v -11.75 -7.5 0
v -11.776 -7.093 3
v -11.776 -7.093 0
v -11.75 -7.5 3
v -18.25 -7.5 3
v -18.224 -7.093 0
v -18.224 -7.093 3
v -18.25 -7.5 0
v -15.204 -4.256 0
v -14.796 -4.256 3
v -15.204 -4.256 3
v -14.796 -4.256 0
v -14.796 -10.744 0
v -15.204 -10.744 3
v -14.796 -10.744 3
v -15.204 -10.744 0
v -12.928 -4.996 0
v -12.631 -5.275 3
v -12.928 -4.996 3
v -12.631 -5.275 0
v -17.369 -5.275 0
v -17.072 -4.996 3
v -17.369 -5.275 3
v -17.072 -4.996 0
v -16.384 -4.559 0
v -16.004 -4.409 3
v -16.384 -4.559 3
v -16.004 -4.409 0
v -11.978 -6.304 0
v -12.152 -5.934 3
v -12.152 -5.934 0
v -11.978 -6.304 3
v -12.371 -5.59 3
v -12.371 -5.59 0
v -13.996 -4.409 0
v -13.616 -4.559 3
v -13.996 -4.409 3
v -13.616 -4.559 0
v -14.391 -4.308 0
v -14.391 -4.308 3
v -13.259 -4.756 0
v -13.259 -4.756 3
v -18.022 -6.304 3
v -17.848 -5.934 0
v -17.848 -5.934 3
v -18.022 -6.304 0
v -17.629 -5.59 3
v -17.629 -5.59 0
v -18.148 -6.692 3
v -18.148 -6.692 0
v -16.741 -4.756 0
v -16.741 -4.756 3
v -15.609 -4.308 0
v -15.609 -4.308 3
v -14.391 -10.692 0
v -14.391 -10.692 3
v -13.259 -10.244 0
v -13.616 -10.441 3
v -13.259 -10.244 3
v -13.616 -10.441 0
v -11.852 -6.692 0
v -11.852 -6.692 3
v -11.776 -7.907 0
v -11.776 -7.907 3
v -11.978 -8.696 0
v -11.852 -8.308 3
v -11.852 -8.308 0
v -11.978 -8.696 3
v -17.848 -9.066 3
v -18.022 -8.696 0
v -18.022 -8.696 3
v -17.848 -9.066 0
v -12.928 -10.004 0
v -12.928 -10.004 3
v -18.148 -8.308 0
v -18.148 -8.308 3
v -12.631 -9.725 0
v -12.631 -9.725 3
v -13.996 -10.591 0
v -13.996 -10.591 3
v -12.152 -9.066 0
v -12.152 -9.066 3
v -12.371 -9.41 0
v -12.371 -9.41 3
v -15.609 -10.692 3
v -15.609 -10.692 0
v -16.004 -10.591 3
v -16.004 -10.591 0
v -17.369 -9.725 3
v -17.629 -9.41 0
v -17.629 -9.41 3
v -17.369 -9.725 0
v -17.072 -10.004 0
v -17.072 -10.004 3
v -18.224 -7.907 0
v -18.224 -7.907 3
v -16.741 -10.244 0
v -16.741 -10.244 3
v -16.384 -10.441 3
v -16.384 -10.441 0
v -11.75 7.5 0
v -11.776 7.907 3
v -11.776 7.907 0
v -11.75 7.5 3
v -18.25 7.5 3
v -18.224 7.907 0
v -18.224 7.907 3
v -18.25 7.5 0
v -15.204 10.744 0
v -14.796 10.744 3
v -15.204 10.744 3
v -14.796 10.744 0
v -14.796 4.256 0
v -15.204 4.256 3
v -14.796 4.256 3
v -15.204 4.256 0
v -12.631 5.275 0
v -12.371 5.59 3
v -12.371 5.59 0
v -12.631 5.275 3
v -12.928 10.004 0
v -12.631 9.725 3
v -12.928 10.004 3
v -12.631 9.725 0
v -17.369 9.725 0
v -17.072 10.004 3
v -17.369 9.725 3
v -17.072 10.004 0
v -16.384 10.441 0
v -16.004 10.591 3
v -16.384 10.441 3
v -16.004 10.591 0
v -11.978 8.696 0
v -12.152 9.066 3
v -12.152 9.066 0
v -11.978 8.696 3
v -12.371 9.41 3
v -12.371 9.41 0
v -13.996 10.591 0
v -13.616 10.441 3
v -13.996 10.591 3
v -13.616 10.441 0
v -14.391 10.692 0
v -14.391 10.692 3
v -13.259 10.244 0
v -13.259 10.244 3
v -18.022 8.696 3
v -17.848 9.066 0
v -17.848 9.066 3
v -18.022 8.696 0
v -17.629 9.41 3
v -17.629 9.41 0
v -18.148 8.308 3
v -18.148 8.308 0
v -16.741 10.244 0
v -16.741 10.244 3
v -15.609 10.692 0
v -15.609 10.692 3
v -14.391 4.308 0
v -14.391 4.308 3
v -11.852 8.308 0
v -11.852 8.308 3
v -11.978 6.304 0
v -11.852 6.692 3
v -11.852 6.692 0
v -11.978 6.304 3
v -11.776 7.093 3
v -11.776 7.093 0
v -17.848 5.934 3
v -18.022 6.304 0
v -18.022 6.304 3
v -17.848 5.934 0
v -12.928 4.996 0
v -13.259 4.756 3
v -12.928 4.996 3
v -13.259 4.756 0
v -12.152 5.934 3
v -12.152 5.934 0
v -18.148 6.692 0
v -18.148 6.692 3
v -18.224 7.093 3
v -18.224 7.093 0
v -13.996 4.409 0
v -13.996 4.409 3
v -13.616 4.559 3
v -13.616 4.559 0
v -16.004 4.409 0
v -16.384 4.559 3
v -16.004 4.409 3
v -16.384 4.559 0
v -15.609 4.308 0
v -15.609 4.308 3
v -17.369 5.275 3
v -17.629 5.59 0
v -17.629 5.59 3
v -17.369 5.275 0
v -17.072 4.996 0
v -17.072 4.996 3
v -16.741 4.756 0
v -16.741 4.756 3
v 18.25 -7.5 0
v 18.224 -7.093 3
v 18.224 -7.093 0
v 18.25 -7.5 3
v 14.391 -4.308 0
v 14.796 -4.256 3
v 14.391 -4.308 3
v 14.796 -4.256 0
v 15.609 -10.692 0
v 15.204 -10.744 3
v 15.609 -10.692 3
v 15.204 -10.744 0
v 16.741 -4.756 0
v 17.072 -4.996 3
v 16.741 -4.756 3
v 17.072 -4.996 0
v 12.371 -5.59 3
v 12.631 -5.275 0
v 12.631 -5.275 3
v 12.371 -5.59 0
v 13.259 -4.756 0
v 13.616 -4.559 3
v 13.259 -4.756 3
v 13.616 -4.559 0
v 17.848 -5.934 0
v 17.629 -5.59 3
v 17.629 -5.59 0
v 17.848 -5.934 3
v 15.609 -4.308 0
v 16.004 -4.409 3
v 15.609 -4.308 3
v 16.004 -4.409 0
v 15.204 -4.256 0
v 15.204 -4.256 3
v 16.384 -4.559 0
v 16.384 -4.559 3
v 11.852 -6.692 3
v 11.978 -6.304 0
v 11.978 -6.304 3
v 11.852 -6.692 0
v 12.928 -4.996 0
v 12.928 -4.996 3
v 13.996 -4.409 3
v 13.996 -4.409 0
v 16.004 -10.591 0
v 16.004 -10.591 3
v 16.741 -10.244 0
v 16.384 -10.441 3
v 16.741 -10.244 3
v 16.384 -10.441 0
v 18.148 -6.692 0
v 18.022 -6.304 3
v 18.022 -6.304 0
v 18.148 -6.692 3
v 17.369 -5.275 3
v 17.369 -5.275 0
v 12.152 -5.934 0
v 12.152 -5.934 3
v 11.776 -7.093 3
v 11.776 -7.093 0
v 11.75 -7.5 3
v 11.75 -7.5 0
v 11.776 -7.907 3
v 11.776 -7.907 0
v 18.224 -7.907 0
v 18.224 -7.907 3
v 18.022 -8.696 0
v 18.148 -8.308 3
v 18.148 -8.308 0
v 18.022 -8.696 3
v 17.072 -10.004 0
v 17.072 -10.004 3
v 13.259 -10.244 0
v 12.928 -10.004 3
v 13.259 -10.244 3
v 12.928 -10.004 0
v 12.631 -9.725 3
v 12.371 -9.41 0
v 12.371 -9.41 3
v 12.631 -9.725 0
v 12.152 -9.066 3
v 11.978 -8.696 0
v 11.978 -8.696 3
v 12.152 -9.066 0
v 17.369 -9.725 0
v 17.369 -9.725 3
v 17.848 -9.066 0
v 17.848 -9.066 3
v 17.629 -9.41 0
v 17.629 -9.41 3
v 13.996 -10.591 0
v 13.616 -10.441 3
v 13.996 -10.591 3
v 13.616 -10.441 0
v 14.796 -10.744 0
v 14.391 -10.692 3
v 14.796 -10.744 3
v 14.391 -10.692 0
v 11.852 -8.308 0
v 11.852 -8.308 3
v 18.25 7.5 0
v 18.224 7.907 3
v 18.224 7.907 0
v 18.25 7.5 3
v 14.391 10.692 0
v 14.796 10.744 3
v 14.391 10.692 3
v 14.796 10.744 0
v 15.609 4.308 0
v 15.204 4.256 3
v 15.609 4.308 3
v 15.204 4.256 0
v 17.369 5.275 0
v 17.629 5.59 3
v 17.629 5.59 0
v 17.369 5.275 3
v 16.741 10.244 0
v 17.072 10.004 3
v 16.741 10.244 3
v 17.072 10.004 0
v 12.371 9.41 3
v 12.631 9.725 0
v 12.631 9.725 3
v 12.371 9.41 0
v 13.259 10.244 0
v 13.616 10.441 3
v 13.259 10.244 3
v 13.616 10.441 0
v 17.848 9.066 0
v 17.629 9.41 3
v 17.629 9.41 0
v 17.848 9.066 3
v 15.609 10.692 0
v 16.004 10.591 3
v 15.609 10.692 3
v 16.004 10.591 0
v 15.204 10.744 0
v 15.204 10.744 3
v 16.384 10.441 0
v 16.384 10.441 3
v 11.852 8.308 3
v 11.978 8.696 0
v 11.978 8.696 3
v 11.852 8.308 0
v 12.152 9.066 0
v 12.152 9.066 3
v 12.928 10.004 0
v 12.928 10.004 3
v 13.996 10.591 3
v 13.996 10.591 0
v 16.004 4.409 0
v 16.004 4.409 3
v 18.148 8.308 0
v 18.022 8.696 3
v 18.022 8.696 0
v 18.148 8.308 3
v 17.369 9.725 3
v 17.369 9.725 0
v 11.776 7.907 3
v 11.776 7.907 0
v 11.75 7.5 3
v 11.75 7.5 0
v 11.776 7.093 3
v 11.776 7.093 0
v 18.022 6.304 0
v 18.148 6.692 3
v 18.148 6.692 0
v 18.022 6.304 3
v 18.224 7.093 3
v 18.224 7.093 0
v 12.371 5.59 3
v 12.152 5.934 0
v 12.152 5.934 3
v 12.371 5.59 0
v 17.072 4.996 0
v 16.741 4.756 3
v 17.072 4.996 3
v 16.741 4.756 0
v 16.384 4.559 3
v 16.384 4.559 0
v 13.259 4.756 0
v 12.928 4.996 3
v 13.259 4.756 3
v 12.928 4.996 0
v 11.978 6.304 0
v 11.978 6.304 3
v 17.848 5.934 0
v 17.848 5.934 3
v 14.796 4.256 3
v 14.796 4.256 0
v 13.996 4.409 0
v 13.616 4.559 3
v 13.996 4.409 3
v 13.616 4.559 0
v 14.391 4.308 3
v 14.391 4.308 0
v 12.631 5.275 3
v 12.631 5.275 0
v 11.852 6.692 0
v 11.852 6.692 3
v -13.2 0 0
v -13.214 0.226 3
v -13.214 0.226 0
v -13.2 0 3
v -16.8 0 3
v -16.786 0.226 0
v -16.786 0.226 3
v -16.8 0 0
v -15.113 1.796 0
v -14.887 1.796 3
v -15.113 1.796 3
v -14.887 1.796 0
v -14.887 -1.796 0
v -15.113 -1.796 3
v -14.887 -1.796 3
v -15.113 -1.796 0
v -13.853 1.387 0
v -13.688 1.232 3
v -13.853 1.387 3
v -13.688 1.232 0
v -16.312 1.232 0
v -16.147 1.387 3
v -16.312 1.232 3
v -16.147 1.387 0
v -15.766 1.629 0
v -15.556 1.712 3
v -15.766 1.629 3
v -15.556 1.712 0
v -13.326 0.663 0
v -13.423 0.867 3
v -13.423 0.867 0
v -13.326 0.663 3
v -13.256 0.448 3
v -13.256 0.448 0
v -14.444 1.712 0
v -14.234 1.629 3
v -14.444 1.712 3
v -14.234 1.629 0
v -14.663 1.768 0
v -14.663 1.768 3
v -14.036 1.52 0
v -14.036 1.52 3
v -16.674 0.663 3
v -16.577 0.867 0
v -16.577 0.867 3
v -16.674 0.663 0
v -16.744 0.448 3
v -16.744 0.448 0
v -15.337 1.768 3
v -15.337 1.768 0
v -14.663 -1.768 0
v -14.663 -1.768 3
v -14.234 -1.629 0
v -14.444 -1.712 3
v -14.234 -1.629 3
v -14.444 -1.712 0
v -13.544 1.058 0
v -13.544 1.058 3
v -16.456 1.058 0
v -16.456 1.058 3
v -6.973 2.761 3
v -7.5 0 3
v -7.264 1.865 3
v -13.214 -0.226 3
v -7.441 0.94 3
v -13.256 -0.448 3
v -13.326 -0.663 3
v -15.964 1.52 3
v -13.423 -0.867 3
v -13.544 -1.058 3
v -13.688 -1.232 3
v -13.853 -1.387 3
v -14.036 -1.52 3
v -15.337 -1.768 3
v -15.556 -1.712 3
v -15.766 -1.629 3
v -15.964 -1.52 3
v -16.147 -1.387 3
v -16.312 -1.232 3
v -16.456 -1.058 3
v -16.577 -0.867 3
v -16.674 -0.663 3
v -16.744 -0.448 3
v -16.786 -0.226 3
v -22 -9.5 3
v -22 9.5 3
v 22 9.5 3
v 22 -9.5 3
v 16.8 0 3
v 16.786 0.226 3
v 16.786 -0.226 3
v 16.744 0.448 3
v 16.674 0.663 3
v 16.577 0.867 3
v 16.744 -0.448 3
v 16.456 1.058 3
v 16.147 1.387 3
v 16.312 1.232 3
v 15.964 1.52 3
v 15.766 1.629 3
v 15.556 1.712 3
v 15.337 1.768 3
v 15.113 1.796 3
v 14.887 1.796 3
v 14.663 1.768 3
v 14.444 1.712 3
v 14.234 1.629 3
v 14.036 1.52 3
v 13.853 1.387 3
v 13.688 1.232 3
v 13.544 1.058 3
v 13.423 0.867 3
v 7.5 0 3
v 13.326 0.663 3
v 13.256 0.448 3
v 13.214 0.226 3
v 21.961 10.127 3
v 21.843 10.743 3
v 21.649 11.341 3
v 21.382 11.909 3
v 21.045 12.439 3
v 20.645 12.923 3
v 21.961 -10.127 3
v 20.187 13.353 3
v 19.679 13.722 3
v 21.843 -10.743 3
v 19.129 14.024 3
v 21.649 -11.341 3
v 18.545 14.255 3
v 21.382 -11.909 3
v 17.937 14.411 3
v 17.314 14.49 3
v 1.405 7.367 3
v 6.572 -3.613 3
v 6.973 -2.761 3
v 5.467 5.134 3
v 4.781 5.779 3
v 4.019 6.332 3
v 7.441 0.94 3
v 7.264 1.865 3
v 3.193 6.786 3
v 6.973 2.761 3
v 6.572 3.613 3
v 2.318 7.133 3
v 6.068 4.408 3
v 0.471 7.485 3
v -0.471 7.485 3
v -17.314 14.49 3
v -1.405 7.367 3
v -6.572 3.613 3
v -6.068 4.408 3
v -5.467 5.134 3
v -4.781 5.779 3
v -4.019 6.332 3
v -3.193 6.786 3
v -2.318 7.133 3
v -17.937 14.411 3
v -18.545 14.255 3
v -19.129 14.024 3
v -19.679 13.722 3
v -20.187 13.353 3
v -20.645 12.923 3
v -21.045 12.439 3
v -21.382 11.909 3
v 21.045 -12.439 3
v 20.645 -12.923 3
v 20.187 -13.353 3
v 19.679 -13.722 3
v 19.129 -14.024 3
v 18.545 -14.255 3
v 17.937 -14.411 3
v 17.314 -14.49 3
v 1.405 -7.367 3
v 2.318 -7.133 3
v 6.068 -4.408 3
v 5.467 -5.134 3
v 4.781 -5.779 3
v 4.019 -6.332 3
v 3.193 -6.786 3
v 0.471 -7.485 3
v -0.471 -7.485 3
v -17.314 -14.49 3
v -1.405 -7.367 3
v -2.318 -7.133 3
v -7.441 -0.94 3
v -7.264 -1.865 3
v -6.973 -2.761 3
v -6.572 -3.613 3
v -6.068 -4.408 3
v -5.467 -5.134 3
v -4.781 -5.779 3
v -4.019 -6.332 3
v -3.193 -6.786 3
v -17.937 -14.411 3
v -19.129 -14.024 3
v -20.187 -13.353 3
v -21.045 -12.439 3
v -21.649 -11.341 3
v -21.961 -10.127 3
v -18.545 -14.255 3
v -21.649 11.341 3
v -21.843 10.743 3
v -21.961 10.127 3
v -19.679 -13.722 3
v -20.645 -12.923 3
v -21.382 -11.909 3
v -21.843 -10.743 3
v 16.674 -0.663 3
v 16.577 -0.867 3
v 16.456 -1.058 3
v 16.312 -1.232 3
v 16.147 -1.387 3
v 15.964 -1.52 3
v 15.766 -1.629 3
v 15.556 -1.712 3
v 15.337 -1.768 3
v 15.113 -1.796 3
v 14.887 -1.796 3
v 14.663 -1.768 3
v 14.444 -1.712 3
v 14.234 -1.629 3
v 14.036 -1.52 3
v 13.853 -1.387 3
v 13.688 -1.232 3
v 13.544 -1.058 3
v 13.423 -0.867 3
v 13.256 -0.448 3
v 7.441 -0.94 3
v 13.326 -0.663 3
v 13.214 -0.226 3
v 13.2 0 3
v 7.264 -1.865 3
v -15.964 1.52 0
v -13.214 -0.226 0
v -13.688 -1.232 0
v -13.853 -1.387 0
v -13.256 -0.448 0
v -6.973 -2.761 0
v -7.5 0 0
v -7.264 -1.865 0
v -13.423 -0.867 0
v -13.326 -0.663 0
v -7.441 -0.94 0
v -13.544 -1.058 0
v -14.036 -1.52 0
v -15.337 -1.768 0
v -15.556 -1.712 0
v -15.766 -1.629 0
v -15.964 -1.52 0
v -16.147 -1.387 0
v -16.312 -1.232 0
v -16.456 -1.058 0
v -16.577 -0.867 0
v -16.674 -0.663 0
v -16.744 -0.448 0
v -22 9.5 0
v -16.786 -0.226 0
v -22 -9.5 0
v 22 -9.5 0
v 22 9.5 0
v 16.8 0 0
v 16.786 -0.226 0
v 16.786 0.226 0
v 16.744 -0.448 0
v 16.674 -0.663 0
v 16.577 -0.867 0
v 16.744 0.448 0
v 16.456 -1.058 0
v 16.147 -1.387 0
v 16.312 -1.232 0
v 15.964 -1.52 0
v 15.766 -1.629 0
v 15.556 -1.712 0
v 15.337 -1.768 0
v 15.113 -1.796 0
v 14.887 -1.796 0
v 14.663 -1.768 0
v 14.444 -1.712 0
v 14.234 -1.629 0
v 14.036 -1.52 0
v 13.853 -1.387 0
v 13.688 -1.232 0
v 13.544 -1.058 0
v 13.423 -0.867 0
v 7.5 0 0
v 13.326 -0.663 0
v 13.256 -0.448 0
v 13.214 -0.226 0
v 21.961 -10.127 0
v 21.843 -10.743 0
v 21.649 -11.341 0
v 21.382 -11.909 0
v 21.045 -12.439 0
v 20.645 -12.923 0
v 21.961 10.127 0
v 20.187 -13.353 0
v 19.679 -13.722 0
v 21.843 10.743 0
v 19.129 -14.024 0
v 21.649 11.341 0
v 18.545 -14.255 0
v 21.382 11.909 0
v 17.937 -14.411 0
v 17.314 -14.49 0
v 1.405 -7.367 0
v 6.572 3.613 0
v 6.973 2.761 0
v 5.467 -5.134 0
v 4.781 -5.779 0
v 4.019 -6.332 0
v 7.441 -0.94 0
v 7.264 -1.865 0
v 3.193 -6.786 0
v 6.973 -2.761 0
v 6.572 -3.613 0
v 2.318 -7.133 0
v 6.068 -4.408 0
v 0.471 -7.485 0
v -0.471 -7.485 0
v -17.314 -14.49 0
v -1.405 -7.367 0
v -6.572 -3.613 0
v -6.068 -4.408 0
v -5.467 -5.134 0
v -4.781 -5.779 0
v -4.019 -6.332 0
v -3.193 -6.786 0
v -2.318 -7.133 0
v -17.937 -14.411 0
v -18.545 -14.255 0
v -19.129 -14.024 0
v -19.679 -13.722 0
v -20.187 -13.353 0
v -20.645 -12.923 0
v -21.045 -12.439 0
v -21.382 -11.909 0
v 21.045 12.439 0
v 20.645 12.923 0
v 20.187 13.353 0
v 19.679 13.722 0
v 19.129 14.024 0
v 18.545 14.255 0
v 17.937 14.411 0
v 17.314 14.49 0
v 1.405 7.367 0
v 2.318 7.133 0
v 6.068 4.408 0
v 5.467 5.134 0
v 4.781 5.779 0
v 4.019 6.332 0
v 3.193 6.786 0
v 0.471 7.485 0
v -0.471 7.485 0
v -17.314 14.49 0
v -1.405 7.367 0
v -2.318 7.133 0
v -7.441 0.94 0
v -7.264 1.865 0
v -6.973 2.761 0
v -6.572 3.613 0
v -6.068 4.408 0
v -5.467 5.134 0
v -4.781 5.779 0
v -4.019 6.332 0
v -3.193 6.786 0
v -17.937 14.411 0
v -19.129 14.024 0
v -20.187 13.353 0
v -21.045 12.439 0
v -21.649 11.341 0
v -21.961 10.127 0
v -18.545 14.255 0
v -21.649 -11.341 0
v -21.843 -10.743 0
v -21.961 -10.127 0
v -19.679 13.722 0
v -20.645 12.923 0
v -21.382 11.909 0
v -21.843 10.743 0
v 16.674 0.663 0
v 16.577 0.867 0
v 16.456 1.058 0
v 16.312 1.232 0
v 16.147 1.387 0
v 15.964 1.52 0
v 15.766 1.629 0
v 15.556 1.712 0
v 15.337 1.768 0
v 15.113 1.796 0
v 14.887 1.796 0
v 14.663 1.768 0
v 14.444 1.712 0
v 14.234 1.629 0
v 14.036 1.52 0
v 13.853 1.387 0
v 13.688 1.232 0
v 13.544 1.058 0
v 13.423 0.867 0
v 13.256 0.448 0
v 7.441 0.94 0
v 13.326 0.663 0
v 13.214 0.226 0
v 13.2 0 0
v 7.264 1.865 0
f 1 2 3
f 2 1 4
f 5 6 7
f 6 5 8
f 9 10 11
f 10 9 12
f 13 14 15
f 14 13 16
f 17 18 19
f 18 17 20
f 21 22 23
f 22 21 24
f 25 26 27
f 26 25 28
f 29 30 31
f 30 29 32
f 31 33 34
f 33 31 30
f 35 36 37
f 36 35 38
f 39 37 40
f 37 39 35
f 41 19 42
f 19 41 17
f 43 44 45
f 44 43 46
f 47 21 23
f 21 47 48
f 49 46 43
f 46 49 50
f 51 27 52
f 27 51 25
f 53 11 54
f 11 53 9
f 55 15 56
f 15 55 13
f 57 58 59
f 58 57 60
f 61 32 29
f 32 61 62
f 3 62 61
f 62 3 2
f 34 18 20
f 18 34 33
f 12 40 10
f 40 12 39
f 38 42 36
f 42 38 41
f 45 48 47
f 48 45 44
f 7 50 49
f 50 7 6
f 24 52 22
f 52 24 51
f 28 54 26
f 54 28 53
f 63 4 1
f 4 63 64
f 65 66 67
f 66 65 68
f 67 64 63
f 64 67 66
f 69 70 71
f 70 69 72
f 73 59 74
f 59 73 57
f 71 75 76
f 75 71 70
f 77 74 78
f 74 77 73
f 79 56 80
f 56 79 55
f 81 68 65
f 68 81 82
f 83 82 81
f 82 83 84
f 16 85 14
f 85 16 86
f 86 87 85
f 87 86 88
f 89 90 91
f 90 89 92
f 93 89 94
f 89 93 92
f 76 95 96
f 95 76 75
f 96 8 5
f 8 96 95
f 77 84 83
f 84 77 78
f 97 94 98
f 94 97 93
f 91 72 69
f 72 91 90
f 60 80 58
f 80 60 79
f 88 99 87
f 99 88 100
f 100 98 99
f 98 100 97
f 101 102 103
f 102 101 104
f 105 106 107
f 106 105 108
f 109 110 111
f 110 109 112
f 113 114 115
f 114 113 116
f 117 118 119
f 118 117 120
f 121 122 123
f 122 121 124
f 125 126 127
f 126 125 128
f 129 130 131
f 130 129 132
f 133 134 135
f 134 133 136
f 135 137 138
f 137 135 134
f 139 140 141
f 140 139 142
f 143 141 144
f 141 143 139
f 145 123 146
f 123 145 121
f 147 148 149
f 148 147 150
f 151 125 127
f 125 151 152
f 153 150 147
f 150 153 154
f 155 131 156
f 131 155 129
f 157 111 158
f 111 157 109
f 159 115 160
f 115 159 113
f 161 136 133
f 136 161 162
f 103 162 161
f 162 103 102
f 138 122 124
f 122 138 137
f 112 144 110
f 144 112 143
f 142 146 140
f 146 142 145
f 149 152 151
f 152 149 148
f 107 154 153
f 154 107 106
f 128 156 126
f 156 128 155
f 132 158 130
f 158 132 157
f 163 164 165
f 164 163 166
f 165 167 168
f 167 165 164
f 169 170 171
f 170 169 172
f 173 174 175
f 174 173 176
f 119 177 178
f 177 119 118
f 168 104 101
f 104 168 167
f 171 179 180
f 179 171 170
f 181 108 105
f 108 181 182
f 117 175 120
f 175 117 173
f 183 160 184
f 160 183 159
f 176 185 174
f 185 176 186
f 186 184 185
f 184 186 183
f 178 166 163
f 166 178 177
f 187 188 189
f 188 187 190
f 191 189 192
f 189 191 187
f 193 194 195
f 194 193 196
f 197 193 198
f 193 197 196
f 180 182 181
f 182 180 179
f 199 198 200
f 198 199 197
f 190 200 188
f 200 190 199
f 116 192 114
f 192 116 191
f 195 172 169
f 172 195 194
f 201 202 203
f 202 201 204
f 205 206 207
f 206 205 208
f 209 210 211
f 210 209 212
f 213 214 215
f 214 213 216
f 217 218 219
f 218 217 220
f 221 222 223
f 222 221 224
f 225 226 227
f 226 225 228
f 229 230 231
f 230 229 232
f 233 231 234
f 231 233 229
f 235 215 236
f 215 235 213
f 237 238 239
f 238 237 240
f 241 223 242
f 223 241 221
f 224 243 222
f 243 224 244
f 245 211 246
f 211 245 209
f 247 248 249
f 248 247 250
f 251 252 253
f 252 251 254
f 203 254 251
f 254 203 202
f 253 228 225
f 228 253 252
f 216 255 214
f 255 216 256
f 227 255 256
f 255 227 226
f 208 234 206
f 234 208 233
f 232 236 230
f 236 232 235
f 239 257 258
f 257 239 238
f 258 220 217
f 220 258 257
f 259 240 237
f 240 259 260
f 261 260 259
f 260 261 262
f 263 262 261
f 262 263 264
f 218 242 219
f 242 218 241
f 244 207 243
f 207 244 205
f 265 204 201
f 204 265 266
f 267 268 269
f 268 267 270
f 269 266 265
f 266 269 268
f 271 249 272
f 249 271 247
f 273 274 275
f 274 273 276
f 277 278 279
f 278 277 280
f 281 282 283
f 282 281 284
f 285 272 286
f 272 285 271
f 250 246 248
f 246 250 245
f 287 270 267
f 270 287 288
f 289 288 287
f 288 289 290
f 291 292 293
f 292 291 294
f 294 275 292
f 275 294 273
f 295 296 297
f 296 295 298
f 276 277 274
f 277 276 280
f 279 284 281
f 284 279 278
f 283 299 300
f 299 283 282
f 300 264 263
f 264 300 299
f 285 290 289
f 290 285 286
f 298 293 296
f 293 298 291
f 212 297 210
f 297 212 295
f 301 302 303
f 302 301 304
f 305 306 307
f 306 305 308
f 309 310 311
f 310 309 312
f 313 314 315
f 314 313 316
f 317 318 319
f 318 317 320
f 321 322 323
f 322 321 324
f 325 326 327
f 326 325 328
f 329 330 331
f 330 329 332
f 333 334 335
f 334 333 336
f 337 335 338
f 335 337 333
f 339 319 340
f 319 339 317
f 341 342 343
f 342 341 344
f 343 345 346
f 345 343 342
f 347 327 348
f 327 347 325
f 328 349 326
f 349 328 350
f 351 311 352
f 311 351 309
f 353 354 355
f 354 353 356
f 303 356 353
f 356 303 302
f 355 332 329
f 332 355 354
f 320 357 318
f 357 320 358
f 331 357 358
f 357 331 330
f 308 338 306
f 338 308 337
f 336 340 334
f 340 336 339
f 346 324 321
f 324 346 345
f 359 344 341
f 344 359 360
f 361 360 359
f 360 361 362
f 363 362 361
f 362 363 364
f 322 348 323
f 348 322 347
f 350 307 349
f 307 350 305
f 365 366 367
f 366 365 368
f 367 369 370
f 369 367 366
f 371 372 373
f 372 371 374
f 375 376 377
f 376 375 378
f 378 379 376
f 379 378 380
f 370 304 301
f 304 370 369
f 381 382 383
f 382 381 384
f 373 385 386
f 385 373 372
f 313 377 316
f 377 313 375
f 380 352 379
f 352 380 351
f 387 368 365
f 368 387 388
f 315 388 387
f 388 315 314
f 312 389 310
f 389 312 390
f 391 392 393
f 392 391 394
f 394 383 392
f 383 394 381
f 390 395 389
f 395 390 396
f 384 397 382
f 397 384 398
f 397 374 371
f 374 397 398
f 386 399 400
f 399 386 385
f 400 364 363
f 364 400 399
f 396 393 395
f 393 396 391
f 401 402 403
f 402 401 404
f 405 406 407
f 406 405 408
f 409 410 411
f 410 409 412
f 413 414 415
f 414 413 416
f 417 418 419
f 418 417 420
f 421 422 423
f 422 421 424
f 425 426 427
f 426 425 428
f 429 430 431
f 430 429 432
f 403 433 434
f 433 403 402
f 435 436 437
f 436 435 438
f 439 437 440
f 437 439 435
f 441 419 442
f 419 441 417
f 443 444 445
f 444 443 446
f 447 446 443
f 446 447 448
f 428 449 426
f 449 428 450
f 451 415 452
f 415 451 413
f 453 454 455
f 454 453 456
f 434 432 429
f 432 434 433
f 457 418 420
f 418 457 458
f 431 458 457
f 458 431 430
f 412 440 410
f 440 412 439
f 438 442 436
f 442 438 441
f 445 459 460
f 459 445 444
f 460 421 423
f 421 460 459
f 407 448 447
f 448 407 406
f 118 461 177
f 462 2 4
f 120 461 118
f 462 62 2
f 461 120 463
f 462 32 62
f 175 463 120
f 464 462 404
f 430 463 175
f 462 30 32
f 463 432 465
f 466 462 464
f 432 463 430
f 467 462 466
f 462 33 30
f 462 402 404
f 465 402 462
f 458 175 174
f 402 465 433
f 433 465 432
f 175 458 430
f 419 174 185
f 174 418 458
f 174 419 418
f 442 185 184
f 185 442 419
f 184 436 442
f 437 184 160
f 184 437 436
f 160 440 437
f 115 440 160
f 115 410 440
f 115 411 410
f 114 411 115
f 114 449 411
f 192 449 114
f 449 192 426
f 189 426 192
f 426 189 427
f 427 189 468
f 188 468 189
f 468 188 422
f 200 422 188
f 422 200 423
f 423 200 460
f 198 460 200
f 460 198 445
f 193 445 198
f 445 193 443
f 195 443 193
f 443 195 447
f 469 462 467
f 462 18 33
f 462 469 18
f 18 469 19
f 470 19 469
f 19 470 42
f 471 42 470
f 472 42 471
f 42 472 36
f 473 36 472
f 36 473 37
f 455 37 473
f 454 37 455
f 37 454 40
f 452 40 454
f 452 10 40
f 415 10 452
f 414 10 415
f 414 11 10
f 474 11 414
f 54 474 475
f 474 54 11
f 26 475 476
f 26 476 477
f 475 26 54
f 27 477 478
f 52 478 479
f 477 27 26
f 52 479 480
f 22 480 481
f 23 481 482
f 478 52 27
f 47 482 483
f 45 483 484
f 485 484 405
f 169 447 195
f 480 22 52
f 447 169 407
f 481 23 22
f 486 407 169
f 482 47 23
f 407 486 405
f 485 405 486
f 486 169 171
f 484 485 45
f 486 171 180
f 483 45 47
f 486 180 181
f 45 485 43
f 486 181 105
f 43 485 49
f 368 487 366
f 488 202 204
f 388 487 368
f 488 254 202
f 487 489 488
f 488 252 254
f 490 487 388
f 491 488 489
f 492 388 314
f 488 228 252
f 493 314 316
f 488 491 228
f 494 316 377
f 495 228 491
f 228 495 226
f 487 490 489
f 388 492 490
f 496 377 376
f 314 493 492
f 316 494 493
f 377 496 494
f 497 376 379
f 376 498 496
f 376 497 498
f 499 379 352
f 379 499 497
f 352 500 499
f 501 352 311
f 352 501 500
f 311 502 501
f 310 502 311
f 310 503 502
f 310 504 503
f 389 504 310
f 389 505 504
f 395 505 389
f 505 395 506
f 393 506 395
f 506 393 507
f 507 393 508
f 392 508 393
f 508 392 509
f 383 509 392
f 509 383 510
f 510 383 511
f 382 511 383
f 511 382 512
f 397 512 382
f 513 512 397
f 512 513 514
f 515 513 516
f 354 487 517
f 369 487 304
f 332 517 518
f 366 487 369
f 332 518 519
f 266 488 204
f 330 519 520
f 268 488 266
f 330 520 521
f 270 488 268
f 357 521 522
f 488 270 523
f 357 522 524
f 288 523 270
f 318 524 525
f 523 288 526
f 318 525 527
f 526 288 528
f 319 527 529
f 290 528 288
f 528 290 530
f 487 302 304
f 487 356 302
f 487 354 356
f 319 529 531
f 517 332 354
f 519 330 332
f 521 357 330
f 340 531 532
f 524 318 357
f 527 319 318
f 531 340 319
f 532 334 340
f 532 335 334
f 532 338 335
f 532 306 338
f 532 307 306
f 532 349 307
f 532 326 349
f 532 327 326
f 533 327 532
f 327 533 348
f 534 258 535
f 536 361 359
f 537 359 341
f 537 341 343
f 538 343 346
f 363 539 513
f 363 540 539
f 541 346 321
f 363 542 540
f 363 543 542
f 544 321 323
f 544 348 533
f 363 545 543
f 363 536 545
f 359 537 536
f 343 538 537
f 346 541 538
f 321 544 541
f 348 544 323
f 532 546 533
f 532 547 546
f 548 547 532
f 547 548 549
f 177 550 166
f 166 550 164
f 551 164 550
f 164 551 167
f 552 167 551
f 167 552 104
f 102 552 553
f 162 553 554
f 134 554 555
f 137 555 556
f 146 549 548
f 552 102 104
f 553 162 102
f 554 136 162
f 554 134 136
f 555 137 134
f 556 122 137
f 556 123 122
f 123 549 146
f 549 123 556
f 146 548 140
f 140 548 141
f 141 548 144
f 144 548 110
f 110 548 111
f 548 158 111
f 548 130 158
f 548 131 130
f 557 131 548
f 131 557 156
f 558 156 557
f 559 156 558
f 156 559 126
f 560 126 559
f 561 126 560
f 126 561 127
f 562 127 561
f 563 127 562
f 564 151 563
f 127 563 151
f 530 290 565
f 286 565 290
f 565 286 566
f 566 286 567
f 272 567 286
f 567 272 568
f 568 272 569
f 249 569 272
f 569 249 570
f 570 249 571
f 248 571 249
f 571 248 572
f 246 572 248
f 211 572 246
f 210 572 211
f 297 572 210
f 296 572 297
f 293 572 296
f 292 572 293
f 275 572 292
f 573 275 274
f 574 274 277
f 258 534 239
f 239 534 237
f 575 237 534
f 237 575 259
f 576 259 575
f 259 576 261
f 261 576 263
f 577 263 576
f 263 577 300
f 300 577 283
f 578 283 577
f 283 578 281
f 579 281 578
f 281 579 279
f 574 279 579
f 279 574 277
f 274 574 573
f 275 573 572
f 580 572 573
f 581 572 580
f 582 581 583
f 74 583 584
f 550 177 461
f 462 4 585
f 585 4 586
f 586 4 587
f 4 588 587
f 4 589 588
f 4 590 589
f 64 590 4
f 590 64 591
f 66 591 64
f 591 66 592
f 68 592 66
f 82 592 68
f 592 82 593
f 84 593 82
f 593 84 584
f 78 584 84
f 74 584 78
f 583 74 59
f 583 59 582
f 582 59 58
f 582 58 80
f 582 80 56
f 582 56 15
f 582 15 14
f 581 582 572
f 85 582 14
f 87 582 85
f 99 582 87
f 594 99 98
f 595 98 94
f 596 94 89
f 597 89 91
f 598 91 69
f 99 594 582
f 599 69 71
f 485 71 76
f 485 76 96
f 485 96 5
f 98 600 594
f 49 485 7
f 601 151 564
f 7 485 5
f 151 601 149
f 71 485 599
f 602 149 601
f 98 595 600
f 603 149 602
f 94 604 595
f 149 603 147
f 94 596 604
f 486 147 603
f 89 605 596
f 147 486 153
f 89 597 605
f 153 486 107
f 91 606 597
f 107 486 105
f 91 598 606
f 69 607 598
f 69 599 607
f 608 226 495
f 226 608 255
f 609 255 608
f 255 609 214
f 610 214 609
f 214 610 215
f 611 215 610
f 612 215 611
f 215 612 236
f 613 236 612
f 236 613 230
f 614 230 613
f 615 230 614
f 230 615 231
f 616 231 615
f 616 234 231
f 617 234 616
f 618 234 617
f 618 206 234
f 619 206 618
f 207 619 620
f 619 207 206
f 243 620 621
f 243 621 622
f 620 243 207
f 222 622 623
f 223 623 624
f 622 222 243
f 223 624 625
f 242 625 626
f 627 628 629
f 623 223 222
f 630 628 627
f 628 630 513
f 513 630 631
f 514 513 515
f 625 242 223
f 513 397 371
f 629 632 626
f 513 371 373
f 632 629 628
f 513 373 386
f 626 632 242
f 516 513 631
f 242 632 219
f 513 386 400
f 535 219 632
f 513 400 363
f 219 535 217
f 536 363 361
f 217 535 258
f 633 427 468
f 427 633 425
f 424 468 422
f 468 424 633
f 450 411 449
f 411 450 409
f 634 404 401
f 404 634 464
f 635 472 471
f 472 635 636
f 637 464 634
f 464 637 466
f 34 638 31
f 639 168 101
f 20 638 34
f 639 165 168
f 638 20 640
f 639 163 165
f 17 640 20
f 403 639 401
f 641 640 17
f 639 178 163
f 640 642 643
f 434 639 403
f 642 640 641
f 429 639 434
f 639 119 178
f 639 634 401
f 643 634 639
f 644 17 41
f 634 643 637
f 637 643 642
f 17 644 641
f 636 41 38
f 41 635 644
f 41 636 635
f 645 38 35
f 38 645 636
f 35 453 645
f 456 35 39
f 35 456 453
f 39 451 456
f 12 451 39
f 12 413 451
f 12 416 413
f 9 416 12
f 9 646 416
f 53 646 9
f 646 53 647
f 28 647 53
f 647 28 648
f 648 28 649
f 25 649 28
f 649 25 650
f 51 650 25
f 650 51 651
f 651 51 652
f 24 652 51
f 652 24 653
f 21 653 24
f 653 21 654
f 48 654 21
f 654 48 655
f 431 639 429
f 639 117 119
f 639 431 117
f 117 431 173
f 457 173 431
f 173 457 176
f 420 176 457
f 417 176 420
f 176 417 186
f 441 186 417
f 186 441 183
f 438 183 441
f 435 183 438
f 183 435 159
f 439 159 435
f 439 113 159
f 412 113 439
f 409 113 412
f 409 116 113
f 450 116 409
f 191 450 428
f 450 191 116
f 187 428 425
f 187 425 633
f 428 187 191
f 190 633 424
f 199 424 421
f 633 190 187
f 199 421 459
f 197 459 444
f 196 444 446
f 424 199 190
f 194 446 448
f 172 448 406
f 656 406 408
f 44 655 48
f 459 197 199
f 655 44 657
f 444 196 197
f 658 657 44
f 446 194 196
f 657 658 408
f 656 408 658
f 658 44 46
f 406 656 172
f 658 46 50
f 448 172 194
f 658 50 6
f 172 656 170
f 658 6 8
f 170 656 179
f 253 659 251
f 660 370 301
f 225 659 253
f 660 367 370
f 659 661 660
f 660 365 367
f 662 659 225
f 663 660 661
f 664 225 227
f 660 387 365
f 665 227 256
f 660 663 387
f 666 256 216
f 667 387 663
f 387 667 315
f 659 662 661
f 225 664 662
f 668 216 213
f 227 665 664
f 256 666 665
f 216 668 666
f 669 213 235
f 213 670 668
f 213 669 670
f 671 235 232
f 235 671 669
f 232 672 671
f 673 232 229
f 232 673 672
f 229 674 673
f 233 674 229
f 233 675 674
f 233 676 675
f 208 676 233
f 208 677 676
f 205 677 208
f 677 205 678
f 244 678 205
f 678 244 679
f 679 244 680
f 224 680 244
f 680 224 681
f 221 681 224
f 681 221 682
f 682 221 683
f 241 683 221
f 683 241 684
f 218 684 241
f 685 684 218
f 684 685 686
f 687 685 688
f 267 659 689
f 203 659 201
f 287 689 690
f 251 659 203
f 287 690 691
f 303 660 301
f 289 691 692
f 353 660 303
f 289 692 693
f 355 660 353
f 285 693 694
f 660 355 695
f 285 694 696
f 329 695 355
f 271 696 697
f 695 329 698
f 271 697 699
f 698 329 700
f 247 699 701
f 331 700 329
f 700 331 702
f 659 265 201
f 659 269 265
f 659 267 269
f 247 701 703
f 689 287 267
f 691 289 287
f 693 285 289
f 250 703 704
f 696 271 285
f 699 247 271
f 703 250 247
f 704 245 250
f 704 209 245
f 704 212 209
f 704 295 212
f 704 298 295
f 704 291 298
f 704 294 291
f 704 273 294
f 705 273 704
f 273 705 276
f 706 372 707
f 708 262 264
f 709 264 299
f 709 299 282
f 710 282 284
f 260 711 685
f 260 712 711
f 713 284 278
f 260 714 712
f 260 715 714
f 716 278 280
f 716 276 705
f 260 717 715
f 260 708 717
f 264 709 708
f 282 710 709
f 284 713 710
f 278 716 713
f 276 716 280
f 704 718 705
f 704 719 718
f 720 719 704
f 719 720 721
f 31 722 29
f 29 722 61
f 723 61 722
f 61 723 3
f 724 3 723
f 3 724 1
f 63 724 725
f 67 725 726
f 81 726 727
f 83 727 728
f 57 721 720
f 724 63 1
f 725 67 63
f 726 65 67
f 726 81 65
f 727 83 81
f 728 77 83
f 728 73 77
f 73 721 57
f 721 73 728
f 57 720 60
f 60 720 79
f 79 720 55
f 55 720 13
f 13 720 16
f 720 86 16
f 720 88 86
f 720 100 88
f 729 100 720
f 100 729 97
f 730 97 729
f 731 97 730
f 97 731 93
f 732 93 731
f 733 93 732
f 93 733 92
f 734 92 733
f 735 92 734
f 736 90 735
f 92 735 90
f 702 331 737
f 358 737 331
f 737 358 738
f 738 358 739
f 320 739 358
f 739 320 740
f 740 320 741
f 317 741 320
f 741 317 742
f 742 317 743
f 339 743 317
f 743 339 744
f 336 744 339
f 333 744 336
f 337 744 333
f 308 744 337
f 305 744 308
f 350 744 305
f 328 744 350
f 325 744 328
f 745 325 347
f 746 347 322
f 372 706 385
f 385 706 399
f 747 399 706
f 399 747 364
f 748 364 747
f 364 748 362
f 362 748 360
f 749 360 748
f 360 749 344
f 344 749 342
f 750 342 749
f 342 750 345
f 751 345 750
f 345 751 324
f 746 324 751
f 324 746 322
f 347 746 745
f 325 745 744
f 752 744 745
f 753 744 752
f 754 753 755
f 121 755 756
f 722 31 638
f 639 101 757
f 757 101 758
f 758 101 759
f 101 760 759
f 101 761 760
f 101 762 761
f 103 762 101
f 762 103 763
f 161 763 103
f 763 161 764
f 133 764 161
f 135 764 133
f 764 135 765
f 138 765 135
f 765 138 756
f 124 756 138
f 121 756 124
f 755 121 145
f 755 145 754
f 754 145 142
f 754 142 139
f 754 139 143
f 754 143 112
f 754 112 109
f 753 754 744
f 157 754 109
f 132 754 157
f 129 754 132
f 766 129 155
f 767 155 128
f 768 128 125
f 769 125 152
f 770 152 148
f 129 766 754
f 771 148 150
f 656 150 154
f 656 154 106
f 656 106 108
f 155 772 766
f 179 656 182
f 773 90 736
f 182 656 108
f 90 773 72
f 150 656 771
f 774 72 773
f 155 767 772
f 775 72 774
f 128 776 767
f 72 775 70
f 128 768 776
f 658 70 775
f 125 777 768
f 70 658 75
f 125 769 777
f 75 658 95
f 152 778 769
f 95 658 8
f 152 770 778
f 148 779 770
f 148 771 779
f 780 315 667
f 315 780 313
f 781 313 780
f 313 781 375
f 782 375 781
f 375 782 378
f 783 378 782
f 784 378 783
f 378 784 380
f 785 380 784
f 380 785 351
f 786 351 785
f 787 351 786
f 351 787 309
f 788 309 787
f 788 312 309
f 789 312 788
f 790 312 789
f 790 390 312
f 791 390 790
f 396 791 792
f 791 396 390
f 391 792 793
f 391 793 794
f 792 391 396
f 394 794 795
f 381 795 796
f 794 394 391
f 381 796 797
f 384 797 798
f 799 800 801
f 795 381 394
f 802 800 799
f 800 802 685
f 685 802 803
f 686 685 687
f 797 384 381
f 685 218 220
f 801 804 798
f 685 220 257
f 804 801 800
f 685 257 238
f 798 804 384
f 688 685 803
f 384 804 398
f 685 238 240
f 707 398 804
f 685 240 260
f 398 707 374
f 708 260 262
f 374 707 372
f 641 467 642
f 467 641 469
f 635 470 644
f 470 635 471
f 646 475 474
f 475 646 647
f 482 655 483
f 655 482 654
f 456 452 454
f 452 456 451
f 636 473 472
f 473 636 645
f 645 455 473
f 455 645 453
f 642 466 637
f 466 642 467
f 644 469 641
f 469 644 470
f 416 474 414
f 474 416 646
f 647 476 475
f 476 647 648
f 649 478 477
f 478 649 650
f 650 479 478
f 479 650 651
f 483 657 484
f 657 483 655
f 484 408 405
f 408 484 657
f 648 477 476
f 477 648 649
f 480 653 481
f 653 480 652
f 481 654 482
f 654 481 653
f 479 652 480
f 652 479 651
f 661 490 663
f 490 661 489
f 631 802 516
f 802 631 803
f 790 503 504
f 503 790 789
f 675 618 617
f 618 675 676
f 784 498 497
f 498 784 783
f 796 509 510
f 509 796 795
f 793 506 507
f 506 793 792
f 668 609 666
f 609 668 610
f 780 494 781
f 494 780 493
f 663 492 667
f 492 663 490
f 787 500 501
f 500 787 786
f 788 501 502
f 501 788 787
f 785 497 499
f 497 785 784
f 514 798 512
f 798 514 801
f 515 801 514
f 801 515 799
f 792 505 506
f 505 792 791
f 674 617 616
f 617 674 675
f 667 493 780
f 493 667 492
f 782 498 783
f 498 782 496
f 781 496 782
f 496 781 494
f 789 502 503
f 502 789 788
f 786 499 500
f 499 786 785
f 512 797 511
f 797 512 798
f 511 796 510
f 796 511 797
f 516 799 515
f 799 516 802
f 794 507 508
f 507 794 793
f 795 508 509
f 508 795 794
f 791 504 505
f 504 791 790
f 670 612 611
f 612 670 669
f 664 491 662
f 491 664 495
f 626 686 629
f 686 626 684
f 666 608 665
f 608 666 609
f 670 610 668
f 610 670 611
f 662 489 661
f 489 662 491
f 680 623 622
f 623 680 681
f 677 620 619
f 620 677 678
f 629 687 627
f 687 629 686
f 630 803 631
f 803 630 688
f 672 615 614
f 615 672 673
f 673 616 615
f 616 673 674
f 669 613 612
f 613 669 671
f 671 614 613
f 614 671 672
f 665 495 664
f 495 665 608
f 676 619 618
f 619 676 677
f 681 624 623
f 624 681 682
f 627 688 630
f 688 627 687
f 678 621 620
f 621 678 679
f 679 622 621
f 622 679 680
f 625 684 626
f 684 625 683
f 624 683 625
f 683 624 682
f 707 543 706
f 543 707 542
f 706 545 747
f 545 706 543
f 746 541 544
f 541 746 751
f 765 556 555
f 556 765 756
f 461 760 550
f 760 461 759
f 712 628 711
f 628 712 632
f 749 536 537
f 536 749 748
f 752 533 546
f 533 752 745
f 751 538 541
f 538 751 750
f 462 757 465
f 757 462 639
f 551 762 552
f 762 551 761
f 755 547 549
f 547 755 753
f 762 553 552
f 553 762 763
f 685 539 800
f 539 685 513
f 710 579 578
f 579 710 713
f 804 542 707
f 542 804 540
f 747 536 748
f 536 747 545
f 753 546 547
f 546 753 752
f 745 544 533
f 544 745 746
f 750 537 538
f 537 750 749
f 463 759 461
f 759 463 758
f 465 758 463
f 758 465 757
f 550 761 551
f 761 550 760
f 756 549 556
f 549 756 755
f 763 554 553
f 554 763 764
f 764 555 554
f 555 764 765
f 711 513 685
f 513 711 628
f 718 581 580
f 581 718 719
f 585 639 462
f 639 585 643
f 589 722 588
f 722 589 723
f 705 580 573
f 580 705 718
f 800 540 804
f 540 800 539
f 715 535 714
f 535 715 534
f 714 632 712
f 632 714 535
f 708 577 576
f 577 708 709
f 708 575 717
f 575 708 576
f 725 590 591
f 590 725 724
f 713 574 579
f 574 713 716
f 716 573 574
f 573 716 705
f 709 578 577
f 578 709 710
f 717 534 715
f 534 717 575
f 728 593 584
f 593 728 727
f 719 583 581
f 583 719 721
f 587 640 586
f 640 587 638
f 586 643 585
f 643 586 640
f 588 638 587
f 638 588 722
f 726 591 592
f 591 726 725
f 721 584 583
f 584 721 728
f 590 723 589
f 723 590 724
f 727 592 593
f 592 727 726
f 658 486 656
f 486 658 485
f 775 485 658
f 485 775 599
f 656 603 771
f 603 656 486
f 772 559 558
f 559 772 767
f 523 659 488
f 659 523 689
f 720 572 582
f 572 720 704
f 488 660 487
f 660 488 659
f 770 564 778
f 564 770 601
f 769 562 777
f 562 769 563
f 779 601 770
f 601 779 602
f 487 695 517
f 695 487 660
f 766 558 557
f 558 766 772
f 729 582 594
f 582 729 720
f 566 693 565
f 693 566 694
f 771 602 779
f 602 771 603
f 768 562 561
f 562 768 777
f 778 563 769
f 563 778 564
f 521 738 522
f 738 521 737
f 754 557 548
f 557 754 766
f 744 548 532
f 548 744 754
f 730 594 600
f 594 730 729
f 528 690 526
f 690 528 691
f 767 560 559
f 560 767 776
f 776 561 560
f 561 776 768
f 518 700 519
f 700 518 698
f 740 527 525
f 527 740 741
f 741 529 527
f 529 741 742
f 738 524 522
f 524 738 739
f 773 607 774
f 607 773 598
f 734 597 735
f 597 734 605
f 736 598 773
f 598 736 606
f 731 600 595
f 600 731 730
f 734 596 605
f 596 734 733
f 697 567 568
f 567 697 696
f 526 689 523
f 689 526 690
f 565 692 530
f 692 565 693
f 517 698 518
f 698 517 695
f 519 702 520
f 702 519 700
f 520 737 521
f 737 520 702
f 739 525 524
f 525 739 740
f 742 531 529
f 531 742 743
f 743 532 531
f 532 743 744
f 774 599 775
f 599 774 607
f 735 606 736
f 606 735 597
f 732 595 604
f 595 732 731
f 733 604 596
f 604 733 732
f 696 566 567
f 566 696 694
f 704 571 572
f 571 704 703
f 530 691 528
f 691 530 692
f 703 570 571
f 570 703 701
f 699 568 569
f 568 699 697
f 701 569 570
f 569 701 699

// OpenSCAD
$fn = 50;


difference() {
	union() {
		hull() {
			translate(v = [-17.0000000000, 9.5000000000, 0]) {
				cylinder(h = 3, r = 5);
			}
			translate(v = [17.0000000000, 9.5000000000, 0]) {
				cylinder(h = 3, r = 5);
			}
			translate(v = [-17.0000000000, -9.5000000000, 0]) {
				cylinder(h = 3, r = 5);
			}
			translate(v = [17.0000000000, -9.5000000000, 0]) {
				cylinder(h = 3, r = 5);
			}
		}
	}
	union() {
		#translate(v = [-15.0000000000, -7.5000000000, 0]) {
			cylinder(h = 3, r = 3.2500000000);
		}
		#translate(v = [-15.0000000000, 7.5000000000, 0]) {
			cylinder(h = 3, r = 3.2500000000);
		}
		#translate(v = [15.0000000000, -7.5000000000, 0]) {
			cylinder(h = 3, r = 3.2500000000);
		}
		#translate(v = [15.0000000000, 7.5000000000, 0]) {
			cylinder(h = 3, r = 3.2500000000);
		}
		#translate(v = [-15.0000000000, -7.5000000000, -100.0000000000]) {
			cylinder(h = 200, r = 3.2500000000);
		}
		#translate(v = [-15.0000000000, 7.5000000000, -100.0000000000]) {
			cylinder(h = 200, r = 3.2500000000);
		}
		#translate(v = [15.0000000000, -7.5000000000, -100.0000000000]) {
			cylinder(h = 200, r = 3.2500000000);
		}
		#translate(v = [15.0000000000, 7.5000000000, -100.0000000000]) {
			cylinder(h = 200, r = 3.2500000000);
		}
		#translate(v = [-15.0000000000, -7.5000000000, 0]) {
			cylinder(h = 3, r = 1.8000000000);
		}
		#translate(v = [-15.0000000000, 0.0000000000, 0]) {
			cylinder(h = 3, r = 1.8000000000);
		}
		#translate(v = [-15.0000000000, 7.5000000000, 0]) {
			cylinder(h = 3, r = 1.8000000000);
		}
		#translate(v = [15.0000000000, -7.5000000000, 0]) {
			cylinder(h = 3, r = 1.8000000000);
		}
		#translate(v = [15.0000000000, 0.0000000000, 0]) {
			cylinder(h = 3, r = 1.8000000000);
		}
		#translate(v = [15.0000000000, 7.5000000000, 0]) {
			cylinder(h = 3, r = 1.8000000000);
		}
		#translate(v = [-15.0000000000, -7.5000000000, 0]) {
			cylinder(h = 3, r = 1.8000000000);
		}
		#translate(v = [-15.0000000000, 0.0000000000, 0]) {
			cylinder(h = 3, r = 1.8000000000);
		}
		#translate(v = [-15.0000000000, 7.5000000000, 0]) {
			cylinder(h = 3, r = 1.8000000000);
		}
		#translate(v = [15.0000000000, -7.5000000000, 0]) {
			cylinder(h = 3, r = 1.8000000000);
		}
		#translate(v = [15.0000000000, 0.0000000000, 0]) {
			cylinder(h = 3, r = 1.8000000000);
		}
		#translate(v = [15.0000000000, 7.5000000000, 0]) {
			cylinder(h = 3, r = 1.8000000000);
		}
		#translate(v = [-15.0000000000, -7.5000000000, 0]) {
			cylinder(h = 3, r = 1.8000000000);
		}
		#translate(v = [-15.0000000000, 0.0000000000, 0]) {
			cylinder(h = 3, r = 1.8000000000);
		}
		#translate(v = [-15.0000000000, 7.5000000000, 0]) {
			cylinder(h = 3, r = 1.8000000000);
		}
		#translate(v = [15.0000000000, -7.5000000000, 0]) {
			cylinder(h = 3, r = 1.8000000000);
		}
		#translate(v = [15.0000000000, 0.0000000000, 0]) {
			cylinder(h = 3, r = 1.8000000000);
		}
		#translate(v = [15.0000000000, 7.5000000000, 0]) {
			cylinder(h = 3, r = 1.8000000000);
		}
		#cylinder(h = 3, r = 7.5000000000);
	}
}
